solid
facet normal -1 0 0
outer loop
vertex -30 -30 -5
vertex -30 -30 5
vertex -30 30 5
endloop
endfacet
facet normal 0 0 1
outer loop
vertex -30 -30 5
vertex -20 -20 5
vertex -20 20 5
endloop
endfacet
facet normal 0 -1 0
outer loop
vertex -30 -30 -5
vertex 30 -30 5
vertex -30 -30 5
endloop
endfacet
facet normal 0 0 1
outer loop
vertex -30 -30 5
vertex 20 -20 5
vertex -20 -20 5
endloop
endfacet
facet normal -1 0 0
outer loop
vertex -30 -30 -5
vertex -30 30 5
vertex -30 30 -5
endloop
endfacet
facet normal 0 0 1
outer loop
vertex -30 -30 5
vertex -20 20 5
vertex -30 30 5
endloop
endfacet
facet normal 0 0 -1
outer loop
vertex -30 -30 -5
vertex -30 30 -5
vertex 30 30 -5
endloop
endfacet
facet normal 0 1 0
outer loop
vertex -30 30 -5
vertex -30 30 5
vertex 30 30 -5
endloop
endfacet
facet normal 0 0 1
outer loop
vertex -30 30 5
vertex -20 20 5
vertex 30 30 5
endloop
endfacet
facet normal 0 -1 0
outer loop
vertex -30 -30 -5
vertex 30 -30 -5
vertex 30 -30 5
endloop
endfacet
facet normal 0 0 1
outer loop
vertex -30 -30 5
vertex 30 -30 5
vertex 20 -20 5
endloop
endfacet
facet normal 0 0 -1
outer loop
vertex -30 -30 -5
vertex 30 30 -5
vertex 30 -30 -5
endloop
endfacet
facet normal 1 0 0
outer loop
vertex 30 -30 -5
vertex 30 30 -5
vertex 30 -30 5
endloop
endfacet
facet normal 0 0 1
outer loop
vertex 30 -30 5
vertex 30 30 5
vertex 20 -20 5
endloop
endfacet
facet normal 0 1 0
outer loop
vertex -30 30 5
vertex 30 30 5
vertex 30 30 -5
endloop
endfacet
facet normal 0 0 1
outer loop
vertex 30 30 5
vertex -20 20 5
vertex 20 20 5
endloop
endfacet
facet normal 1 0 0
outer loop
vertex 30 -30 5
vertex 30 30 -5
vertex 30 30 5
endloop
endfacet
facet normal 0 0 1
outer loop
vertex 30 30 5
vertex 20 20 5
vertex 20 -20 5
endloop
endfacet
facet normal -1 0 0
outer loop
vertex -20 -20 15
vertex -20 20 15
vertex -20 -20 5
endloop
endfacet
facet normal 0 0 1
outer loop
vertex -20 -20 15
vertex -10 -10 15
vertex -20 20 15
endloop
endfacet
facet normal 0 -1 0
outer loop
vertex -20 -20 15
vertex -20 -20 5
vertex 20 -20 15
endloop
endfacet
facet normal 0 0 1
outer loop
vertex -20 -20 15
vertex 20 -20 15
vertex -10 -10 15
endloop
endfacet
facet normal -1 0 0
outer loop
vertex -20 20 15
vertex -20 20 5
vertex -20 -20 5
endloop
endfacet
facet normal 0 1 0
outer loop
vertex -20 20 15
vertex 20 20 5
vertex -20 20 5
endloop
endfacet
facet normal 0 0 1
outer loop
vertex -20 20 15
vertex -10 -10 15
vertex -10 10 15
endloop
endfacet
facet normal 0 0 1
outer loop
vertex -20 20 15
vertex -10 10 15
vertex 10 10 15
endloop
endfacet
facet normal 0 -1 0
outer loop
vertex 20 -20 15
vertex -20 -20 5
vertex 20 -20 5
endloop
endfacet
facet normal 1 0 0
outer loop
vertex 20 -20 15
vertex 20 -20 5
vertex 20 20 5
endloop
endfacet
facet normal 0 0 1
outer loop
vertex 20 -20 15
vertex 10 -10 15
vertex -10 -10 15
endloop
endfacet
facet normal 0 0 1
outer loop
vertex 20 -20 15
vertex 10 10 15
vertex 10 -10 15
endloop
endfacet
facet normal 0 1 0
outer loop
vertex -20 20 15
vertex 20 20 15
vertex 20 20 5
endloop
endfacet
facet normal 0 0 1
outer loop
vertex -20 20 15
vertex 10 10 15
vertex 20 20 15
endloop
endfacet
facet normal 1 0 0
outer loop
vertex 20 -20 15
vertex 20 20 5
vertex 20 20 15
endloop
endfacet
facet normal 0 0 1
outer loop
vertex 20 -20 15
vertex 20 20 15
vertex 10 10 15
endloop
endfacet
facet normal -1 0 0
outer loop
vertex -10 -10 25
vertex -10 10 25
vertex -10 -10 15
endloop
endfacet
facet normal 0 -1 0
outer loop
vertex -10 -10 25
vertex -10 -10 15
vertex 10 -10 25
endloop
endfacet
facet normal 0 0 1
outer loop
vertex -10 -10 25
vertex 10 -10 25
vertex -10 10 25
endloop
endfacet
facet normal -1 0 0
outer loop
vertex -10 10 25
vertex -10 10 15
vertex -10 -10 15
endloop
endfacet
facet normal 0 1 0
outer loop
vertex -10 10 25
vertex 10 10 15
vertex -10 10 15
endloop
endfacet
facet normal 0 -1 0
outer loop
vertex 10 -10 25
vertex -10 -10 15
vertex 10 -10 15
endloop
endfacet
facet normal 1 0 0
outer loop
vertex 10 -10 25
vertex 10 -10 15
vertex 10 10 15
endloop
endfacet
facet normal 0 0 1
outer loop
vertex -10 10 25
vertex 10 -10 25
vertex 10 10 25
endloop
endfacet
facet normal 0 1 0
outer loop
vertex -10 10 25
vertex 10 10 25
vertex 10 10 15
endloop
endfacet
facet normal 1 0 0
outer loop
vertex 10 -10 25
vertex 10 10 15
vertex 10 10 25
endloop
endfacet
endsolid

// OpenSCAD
// 3段の階段状ピラミッド
// 各段は中心を揃えて積み上げる

// 1段目: 60 x 60 x 10
translate([0, 0, 0])
    cube([60, 60, 10], center=true);

// 2段目: 40 x 40 x 10
translate([0, 0, 10])
    cube([40, 40, 10], center=true);

// 3段目: 20 x 20 x 10
translate([0, 0, 20])
    cube([20, 20, 10], center=true);
